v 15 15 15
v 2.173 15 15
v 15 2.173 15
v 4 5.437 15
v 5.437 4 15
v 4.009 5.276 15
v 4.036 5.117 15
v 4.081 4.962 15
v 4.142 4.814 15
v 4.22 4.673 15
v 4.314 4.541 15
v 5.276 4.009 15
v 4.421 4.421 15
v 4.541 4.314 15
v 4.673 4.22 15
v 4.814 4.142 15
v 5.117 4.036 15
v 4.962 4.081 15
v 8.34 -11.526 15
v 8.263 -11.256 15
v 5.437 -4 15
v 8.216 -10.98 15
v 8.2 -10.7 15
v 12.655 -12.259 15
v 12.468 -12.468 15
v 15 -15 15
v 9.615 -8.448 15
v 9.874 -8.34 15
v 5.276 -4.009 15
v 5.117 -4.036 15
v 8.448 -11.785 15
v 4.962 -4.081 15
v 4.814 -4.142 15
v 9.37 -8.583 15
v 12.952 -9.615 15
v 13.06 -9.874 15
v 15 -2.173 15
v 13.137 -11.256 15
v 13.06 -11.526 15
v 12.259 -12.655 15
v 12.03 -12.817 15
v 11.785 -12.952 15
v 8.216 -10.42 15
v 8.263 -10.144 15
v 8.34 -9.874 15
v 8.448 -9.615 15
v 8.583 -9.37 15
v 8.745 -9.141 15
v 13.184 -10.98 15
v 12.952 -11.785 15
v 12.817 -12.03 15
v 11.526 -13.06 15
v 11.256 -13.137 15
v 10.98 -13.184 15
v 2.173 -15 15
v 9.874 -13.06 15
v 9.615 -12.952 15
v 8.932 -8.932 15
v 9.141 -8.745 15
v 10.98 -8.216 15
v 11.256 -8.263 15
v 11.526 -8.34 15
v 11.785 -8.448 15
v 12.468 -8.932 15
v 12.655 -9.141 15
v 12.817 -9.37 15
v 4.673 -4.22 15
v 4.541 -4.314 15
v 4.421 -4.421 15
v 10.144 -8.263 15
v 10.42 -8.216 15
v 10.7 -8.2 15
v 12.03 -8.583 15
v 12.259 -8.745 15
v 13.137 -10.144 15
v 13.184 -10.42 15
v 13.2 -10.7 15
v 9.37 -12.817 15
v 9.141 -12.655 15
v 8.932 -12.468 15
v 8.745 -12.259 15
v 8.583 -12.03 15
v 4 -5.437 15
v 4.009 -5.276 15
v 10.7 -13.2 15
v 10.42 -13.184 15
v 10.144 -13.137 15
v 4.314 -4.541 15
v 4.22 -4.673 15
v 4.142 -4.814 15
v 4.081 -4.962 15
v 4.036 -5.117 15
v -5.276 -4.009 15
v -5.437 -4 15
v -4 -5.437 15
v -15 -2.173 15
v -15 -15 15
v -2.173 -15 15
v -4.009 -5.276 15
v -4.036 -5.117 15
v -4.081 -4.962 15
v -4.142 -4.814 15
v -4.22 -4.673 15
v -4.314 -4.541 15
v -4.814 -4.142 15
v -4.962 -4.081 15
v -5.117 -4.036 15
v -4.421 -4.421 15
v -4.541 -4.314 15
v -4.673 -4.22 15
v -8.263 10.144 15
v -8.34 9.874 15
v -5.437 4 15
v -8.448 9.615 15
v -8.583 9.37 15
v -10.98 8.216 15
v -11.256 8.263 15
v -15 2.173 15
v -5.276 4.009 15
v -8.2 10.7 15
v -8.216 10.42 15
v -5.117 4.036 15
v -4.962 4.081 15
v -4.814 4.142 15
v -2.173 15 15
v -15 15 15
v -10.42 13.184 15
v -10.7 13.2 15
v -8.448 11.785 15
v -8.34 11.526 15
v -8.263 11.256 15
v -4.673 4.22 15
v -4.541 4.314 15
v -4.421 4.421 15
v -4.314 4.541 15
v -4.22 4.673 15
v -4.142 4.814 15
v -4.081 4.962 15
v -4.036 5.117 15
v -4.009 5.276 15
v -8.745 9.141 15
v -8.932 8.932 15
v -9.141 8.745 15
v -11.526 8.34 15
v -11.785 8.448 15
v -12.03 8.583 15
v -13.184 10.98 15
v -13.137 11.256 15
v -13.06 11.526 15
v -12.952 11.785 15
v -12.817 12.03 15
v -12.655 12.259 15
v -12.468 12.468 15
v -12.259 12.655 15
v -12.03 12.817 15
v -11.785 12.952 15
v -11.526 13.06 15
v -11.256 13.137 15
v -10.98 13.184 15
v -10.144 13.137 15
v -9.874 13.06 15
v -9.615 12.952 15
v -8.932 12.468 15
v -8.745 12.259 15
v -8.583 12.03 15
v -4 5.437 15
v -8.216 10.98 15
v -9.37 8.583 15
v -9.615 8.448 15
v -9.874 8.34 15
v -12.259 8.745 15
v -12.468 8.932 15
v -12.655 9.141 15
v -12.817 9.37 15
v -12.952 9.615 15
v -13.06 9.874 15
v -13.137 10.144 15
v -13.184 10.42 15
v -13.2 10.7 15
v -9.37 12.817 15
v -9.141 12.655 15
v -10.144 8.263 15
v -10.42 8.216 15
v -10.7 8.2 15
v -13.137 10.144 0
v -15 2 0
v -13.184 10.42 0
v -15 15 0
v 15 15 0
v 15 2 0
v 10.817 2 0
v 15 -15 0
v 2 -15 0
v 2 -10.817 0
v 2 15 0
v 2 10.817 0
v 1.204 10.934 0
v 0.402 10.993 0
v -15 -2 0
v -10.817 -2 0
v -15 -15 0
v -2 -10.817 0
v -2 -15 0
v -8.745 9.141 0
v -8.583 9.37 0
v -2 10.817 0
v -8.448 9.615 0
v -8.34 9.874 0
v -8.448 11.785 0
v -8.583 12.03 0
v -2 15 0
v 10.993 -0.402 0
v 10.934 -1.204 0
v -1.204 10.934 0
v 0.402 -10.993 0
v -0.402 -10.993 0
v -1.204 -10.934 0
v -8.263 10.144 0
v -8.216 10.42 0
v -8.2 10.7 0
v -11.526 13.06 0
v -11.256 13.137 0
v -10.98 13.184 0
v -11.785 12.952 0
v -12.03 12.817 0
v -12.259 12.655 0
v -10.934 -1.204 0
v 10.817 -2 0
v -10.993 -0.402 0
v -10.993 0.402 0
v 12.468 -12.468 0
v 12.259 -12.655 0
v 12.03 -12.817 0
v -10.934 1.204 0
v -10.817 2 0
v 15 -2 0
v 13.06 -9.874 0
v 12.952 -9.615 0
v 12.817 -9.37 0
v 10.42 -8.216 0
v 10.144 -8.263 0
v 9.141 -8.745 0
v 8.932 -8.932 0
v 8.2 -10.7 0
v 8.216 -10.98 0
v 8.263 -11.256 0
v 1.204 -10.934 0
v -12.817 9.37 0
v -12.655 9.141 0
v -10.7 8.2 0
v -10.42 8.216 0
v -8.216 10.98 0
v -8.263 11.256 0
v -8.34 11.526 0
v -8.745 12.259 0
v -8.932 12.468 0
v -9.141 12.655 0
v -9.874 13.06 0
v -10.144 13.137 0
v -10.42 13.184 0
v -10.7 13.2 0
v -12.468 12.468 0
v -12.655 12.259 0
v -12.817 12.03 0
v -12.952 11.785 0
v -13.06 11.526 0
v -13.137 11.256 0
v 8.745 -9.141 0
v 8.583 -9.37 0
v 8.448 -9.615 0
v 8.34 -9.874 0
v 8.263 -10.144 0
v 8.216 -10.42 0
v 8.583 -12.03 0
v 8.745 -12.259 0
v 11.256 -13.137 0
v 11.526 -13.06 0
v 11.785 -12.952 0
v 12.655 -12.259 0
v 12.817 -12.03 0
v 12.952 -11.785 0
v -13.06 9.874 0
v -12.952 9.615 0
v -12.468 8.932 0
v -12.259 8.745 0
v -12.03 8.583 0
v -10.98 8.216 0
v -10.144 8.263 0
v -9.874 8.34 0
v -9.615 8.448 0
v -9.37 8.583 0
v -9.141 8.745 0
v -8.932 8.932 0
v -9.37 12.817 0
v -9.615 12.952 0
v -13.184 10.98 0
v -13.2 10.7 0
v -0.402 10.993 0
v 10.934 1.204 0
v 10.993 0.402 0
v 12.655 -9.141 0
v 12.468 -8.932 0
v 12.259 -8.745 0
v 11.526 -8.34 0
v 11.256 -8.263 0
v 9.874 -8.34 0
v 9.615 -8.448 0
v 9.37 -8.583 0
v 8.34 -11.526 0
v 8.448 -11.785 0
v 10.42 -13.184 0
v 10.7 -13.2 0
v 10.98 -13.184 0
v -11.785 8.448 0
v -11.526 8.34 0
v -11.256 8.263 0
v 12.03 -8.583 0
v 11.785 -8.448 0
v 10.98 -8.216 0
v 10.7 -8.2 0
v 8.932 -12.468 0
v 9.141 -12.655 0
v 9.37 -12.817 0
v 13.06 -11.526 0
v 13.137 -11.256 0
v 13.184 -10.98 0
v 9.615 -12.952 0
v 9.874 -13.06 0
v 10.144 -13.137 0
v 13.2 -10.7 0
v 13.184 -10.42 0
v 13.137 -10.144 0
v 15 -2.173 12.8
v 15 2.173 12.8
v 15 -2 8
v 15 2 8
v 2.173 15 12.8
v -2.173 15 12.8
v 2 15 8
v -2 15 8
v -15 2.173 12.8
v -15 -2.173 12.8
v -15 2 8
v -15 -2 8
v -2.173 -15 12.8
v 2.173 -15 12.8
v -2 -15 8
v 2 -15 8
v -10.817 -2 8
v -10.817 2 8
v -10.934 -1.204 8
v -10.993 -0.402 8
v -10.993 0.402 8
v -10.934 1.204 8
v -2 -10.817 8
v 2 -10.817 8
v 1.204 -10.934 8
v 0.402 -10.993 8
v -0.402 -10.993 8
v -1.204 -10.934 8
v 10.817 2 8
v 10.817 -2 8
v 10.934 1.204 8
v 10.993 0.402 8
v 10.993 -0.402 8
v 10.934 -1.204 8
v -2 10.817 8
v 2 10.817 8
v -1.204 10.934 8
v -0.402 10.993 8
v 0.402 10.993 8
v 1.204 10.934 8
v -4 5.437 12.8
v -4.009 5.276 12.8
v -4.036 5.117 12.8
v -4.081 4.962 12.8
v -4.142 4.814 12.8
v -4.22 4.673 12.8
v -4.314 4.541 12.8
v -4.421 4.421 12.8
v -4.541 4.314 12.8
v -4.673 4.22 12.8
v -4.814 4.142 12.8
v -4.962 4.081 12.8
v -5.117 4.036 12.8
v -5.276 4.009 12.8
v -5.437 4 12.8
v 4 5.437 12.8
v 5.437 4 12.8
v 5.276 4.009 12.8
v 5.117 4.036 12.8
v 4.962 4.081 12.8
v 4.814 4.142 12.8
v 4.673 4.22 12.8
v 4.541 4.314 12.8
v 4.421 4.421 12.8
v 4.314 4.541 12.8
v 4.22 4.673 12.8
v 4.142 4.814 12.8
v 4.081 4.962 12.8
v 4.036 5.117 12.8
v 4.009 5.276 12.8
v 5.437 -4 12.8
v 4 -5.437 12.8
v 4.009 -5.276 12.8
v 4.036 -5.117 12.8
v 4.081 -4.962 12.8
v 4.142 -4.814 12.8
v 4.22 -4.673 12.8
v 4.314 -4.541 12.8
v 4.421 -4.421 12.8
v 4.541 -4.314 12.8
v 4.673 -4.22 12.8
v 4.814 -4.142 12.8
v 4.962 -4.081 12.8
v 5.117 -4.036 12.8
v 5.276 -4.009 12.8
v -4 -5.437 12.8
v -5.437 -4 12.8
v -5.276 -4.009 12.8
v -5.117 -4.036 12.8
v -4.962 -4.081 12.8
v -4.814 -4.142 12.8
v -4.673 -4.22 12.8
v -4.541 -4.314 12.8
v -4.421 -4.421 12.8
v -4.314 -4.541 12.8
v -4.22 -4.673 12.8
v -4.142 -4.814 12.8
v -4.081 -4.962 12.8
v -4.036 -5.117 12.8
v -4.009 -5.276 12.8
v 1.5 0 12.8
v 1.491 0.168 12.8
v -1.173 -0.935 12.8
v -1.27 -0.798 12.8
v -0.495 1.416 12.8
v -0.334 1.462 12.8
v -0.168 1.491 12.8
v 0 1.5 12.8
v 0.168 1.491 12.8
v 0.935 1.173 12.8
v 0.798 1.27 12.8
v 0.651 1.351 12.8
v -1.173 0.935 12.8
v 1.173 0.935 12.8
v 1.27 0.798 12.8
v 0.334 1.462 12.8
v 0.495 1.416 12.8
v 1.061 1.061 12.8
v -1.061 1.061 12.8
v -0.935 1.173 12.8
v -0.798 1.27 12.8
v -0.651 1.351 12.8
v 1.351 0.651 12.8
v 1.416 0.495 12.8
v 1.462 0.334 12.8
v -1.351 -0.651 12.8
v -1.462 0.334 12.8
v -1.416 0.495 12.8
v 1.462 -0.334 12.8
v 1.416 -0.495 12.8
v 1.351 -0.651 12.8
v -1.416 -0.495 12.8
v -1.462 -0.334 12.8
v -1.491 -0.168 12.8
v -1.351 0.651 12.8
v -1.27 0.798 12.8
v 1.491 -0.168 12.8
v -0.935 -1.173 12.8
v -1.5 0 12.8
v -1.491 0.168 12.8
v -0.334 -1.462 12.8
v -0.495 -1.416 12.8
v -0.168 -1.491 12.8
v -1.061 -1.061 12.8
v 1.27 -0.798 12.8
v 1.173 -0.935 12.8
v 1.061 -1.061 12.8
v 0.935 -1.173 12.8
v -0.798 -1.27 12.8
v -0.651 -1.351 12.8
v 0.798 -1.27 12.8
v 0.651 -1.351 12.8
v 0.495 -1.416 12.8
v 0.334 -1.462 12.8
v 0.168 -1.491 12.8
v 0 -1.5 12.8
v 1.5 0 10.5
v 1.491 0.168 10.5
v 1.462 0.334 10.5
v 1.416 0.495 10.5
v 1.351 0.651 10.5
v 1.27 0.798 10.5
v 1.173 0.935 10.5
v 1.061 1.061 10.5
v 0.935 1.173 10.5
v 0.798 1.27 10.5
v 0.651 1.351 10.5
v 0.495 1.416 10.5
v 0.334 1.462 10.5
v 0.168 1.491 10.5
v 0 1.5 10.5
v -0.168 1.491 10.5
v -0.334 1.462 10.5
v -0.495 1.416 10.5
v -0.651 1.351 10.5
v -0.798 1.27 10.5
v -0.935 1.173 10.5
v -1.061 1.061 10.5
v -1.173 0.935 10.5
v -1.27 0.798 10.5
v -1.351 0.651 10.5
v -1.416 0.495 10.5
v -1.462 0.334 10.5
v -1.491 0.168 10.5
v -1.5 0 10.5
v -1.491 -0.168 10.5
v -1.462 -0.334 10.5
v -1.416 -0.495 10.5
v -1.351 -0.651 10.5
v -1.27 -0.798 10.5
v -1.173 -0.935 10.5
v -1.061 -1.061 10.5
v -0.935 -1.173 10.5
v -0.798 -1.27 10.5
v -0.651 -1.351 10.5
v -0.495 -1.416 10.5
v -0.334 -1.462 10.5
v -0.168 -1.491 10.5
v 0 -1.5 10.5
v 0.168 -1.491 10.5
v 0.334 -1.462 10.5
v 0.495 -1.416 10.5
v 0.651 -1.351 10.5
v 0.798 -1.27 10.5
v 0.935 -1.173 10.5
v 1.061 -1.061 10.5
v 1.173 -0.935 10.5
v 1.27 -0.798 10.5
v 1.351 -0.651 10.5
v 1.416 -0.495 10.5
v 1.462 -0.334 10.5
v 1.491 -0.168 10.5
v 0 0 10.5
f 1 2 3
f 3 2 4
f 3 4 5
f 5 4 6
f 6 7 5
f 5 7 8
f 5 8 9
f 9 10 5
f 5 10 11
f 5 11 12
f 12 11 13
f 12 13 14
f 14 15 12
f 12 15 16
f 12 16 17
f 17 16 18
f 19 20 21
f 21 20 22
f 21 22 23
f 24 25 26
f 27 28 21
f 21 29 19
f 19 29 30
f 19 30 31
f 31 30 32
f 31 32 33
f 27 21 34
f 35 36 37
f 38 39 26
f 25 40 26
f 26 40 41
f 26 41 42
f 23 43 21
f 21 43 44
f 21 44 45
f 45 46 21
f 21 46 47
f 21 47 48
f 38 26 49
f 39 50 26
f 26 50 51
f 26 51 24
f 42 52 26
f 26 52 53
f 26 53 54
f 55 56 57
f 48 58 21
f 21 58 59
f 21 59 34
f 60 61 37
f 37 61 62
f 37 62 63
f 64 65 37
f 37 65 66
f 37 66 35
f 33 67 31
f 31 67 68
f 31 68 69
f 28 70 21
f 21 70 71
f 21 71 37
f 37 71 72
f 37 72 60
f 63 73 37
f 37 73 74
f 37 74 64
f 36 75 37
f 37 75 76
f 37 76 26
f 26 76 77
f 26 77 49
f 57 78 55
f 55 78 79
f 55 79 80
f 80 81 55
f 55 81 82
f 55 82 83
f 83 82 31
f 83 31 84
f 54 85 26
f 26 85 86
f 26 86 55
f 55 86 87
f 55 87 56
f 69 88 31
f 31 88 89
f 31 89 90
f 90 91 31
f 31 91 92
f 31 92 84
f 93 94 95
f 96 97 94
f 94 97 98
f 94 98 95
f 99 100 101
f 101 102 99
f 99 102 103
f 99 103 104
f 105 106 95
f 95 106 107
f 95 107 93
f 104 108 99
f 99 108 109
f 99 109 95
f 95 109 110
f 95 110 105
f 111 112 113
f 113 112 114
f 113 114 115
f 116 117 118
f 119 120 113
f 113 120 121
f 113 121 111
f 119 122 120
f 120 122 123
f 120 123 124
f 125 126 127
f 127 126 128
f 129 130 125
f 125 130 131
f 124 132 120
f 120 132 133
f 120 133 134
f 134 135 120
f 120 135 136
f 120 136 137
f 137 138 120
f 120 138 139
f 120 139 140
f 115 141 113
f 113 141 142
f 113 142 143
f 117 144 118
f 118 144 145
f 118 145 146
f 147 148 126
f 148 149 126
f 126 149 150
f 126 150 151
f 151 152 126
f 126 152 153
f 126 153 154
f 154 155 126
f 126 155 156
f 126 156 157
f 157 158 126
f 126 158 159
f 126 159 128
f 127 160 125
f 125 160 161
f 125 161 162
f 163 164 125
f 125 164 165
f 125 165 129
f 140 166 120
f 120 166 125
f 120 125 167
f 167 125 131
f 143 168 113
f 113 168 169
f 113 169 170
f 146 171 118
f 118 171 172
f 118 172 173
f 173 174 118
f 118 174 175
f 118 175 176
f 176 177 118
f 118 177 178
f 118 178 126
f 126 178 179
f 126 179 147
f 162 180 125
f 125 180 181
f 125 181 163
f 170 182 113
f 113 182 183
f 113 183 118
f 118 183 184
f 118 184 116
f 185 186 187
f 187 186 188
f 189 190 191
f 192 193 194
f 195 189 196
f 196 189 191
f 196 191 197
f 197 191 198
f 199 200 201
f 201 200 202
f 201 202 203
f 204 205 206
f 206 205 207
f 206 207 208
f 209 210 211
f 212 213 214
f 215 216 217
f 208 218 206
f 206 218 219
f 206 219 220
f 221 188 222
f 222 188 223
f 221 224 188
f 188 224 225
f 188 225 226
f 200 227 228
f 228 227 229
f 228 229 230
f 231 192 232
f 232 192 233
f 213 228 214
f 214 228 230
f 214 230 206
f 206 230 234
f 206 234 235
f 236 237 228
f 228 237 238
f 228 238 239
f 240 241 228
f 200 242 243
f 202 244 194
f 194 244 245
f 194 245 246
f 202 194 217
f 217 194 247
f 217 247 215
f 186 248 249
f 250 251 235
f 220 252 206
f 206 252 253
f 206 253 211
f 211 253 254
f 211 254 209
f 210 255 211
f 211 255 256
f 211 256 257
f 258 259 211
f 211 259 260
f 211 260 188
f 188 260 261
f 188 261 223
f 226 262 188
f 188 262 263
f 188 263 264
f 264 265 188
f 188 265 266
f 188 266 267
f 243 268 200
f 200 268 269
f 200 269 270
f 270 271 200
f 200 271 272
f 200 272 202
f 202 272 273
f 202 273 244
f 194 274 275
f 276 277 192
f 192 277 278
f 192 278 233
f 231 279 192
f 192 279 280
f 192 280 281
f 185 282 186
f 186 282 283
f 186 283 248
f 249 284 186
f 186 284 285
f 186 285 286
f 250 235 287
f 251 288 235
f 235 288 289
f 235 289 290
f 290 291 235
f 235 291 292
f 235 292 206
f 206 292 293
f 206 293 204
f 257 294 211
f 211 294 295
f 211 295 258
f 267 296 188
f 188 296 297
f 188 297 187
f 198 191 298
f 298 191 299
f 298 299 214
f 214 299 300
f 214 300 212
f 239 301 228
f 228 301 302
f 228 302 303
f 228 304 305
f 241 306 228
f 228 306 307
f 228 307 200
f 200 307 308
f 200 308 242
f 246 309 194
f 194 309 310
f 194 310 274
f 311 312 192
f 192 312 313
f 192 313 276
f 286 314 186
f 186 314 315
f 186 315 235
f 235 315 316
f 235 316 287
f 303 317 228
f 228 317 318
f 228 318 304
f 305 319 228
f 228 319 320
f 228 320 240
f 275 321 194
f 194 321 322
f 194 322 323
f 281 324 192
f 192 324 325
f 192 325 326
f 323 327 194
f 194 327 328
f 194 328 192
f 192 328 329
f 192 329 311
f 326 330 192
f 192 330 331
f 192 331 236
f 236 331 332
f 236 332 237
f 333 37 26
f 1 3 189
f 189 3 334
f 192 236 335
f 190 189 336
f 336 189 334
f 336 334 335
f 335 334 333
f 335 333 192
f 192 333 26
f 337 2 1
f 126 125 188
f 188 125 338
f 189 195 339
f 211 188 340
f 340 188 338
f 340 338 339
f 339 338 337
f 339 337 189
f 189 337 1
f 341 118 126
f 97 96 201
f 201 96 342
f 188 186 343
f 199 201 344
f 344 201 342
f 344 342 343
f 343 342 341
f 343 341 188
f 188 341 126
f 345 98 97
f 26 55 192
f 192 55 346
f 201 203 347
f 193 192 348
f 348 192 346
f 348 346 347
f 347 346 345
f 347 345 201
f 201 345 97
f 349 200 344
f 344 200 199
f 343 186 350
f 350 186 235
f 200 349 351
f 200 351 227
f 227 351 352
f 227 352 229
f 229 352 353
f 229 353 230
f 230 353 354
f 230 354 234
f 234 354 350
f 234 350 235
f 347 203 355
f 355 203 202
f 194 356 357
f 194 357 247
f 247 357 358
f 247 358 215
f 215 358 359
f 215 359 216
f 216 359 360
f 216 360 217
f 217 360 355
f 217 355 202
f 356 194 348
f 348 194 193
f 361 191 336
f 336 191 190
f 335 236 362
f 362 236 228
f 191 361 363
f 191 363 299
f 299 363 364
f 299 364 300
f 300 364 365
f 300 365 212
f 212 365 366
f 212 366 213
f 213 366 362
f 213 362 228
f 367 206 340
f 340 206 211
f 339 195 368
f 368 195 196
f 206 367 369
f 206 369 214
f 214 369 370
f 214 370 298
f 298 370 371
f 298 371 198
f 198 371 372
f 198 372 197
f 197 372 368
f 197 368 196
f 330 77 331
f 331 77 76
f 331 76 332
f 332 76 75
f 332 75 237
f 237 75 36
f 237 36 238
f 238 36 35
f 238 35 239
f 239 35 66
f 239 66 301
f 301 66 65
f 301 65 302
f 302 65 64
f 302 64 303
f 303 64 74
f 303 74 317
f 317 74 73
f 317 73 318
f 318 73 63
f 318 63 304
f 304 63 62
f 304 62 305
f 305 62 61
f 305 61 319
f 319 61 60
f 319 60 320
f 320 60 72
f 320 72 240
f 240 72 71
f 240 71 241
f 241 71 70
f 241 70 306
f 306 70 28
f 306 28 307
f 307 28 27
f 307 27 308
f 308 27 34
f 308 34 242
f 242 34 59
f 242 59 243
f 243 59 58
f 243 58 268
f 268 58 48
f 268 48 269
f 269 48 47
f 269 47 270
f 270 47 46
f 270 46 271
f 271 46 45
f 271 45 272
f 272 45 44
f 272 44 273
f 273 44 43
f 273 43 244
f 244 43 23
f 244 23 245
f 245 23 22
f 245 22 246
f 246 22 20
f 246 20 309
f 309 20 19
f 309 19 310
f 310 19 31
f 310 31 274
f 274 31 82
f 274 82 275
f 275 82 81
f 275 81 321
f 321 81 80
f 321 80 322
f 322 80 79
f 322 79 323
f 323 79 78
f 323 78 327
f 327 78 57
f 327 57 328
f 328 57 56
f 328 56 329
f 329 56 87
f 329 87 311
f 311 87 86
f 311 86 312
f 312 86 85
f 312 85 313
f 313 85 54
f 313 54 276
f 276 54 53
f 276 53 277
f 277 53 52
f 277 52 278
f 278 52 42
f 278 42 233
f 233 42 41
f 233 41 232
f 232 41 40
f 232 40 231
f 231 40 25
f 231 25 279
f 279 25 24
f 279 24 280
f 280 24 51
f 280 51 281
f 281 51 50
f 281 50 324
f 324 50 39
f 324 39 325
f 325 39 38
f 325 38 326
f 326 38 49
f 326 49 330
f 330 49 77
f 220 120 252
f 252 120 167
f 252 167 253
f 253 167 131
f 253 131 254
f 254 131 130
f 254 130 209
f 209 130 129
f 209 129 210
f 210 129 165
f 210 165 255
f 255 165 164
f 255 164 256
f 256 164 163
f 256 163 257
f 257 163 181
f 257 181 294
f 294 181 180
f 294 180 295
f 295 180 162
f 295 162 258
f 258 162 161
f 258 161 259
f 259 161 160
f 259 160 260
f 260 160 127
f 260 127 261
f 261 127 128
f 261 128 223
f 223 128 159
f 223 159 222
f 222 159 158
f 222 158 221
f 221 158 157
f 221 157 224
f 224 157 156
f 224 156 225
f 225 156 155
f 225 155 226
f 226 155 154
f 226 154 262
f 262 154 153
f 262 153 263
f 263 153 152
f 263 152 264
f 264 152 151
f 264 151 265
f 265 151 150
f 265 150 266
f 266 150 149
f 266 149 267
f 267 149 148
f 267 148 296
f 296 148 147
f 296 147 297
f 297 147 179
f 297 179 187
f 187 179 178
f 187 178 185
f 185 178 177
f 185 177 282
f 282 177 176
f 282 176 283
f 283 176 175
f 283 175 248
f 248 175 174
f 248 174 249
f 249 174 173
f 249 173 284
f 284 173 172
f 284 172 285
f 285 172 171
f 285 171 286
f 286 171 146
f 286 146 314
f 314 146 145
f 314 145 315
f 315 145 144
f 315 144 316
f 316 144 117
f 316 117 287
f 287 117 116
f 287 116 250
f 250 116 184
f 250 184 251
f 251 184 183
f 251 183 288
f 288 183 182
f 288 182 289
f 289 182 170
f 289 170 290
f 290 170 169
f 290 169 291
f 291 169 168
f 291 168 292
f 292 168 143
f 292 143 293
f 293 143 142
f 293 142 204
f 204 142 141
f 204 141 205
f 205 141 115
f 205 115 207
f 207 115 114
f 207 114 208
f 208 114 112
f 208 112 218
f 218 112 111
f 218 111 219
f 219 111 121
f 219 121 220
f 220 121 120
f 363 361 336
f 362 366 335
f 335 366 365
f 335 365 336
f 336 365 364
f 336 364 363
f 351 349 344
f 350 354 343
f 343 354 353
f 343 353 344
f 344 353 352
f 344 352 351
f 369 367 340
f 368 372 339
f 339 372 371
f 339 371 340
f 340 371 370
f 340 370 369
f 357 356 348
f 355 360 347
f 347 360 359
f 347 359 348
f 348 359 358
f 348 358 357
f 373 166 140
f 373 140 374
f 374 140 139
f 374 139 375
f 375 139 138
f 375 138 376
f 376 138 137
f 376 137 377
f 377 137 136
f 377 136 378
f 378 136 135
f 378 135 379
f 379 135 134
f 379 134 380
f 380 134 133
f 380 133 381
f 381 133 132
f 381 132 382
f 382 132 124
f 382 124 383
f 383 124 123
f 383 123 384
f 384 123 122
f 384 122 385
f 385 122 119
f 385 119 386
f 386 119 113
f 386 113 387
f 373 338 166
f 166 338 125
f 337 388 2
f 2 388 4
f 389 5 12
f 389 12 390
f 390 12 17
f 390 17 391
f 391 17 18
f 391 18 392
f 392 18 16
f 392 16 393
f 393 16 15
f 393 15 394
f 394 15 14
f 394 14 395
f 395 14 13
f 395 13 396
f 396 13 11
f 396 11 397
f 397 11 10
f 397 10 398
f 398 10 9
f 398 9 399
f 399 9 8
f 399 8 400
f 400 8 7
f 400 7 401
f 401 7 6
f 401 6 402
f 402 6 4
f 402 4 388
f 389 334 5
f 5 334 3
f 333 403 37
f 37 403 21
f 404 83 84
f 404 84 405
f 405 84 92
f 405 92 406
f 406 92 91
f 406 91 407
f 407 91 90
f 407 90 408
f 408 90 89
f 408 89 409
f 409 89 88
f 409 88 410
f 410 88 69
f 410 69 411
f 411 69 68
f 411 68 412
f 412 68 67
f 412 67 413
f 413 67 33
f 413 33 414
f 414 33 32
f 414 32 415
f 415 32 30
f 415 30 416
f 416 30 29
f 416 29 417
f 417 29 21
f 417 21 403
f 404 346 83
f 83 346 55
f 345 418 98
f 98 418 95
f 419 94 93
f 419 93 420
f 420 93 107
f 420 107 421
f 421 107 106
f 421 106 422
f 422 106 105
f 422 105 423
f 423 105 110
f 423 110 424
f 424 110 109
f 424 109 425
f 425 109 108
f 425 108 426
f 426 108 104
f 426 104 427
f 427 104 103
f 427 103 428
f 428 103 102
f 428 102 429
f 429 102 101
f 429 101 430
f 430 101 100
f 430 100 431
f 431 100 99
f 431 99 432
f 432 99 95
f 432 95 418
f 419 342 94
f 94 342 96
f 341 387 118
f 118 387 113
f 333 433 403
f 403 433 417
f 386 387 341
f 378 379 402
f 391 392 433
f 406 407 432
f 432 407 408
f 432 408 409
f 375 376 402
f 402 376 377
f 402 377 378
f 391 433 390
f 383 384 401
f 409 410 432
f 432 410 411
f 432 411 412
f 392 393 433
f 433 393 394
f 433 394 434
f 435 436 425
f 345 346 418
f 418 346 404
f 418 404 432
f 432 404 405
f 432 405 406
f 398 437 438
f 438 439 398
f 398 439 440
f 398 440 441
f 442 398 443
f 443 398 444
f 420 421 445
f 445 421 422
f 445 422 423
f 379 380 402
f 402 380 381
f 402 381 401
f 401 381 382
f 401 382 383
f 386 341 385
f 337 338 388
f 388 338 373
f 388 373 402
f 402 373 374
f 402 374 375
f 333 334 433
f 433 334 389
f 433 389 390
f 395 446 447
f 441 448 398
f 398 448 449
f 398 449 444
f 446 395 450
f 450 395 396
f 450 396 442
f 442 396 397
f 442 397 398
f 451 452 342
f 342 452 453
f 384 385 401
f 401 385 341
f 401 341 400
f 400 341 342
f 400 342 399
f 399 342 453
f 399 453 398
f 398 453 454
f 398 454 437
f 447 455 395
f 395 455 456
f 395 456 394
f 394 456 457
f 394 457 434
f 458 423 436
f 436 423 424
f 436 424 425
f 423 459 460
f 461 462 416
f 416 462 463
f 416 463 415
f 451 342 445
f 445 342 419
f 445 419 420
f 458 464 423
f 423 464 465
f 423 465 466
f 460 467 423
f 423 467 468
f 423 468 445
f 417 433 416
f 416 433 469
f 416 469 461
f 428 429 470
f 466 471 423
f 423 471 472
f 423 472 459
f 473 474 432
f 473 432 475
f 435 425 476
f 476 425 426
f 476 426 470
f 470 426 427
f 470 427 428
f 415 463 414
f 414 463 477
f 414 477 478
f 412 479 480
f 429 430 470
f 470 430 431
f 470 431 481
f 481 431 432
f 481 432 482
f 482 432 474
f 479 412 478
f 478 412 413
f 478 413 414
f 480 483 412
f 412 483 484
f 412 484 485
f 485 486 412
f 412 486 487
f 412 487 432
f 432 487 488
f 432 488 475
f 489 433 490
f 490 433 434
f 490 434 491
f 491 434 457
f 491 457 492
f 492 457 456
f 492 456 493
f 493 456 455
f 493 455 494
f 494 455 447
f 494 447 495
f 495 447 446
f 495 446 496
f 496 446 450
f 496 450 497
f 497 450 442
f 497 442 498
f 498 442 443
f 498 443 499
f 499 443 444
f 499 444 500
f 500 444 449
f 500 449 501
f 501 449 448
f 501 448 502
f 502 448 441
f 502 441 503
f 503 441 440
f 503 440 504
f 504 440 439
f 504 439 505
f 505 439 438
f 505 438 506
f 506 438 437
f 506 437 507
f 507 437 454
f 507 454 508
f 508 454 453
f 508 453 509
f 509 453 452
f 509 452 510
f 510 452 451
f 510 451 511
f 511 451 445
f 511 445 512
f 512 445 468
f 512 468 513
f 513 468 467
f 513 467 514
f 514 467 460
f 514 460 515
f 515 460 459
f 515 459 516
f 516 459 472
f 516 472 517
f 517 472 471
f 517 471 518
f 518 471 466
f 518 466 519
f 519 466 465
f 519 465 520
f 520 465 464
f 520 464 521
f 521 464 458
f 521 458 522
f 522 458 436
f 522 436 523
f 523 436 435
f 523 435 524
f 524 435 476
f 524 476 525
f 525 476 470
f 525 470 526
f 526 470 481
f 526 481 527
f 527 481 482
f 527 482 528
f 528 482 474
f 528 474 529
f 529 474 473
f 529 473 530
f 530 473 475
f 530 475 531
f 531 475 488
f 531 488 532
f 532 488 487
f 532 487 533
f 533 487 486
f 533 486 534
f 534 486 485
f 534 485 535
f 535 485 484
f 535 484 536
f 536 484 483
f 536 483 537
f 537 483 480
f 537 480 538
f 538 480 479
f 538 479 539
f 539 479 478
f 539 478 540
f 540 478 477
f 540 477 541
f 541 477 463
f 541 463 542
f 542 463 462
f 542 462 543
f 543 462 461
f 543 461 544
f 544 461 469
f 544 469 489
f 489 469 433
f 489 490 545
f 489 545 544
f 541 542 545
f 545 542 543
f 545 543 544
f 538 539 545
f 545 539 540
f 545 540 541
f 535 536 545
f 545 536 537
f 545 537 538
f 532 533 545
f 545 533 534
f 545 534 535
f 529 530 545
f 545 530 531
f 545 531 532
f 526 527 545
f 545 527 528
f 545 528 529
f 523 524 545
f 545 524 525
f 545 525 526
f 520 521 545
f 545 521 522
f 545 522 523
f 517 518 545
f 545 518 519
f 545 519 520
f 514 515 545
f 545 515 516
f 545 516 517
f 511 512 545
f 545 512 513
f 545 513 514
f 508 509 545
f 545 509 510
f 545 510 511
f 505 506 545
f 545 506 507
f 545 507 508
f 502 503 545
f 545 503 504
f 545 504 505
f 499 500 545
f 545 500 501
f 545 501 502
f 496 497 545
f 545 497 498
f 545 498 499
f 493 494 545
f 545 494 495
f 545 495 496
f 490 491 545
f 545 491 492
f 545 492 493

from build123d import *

# Parameters (mm, degrees)
SKETCH1_W           = 30
SKETCH1_H           = 30
BOSS_EXTRUDE1_DEPTH = 15
CUT_EXTRUDE1_DEPTH  = 15
SKETCH3_R           = 2.5
CUT_EXTRUDE2_DEPTH  = 15
SKETCH4_W           = 7
SKETCH4_H           = 4
BOSS_EXTRUDE2_DEPTH = 30
SKETCH5_W           = 4
SKETCH5_H           = 7
BOSS_EXTRUDE3_DEPTH = 30
CUT_EXTRUDE3_DEPTH  = 2.2
SKETCH7_R           = 1.5
CUT_EXTRUDE4_DEPTH  = 4.5


with BuildPart() as part:
    # Sketch1 → Boss-Extrude1 (new body)
    with BuildSketch(Plane.XY):
        Rectangle(SKETCH1_W, SKETCH1_H)
    extrude(amount=BOSS_EXTRUDE1_DEPTH)

    # Sketch2 → Cut-Extrude1 (cut)
    with BuildSketch(Plane.XY.offset(15)):
        with BuildLine():
            Line((-2, 15), (2, 15))
            Line((2, 15), (2, 10.816653826))
            ThreePointArc((2, 10.816653826), (0, 11), (-2, 10.816653826))
            Line((-2, 10.816653826), (-2, 15))
        make_face()
        with BuildLine():
            Line((15, 2), (15, -2))
            Line((15, -2), (10.816653826, -2))
            ThreePointArc((10.816653826, -2), (11, 0), (10.816653826, 2))
            Line((10.816653826, 2), (15, 2))
        make_face()
        with BuildLine():
            Line((-2, -15), (2, -15))
            Line((2, -15), (2, -10.816653826))
            ThreePointArc((2, -10.816653826), (0, -11), (-2, -10.816653826))
            Line((-2, -10.816653826), (-2, -15))
        make_face()
        with BuildLine():
            Line((-15, -2), (-15, 2))
            Line((-15, 2), (-10.816653826, 2))
            ThreePointArc((-10.816653826, 2), (-11, 0), (-10.816653826, -2))
            Line((-10.816653826, -2), (-15, -2))
        make_face()
    extrude(amount=-CUT_EXTRUDE1_DEPTH, mode=Mode.SUBTRACT)

    # Sketch3 → Cut-Extrude2 (cut)
    with BuildSketch(Plane.XY.offset(15)):
        with Locations((-10.7, 10.7)):
            Circle(SKETCH3_R)
        with Locations((10.7, -10.7)):
            Circle(SKETCH3_R)
    extrude(amount=-CUT_EXTRUDE2_DEPTH, mode=Mode.SUBTRACT)

    # Sketch4 → Boss-Extrude2 (add)
    with BuildSketch(Plane(origin=(15, 0, 0), x_dir=(0, 0, -1), z_dir=(1, 0, 0))):
        with Locations((-11.5, 0)):
            Rectangle(SKETCH4_W, SKETCH4_H)
    extrude(amount=-BOSS_EXTRUDE2_DEPTH)

    # Sketch5 → Boss-Extrude3 (add)
    with BuildSketch(Plane.XZ.offset(15)):
        with Locations((0, 11.5)):
            Rectangle(SKETCH5_W, SKETCH5_H)
    extrude(amount=-BOSS_EXTRUDE3_DEPTH)

    # Sketch6 → Cut-Extrude3 (cut)
    with BuildSketch(Plane.XY.offset(15)):
        with BuildLine():
            Line((-4, 5.437140793), (-2.172951473, 15))
            Line((-2.172951473, 15), (2.172951473, 15))
            Line((2.172951473, 15), (4, 5.437140793))
            ThreePointArc((4, 5.437140793), (4.420928793, 4.420928793), (5.437140793, 4))
            Line((5.437140793, 4), (15, 2.172951473))
            Line((15, 2.172951473), (15, -2.172951473))
            Line((15, -2.172951473), (5.437140793, -4))
            ThreePointArc((5.437140793, -4), (4.420928793, -4.420928793), (4, -5.437140793))
            Line((4, -5.437140793), (2.172951473, -15))
            Line((2.172951473, -15), (-2.172951473, -15))
            Line((-2.172951473, -15), (-4, -5.437140793))
            ThreePointArc((-4, -5.437140793), (-4.420928793, -4.420928793), (-5.437140793, -4))
            Line((-5.437140793, -4), (-15, -2.172951473))
            Line((-15, -2.172951473), (-15, 2.172951473))
            Line((-15, 2.172951473), (-5.437140793, 4))
            ThreePointArc((-5.437140793, 4), (-4.420928793, 4.420928793), (-4, 5.437140793))
        make_face()
    extrude(amount=-CUT_EXTRUDE3_DEPTH, mode=Mode.SUBTRACT)

    # Sketch7 → Cut-Extrude4 (cut)
    with BuildSketch(Plane.XY.offset(15)):
        Circle(SKETCH7_R)
    extrude(amount=-CUT_EXTRUDE4_DEPTH, mode=Mode.SUBTRACT)


solid = part.part
